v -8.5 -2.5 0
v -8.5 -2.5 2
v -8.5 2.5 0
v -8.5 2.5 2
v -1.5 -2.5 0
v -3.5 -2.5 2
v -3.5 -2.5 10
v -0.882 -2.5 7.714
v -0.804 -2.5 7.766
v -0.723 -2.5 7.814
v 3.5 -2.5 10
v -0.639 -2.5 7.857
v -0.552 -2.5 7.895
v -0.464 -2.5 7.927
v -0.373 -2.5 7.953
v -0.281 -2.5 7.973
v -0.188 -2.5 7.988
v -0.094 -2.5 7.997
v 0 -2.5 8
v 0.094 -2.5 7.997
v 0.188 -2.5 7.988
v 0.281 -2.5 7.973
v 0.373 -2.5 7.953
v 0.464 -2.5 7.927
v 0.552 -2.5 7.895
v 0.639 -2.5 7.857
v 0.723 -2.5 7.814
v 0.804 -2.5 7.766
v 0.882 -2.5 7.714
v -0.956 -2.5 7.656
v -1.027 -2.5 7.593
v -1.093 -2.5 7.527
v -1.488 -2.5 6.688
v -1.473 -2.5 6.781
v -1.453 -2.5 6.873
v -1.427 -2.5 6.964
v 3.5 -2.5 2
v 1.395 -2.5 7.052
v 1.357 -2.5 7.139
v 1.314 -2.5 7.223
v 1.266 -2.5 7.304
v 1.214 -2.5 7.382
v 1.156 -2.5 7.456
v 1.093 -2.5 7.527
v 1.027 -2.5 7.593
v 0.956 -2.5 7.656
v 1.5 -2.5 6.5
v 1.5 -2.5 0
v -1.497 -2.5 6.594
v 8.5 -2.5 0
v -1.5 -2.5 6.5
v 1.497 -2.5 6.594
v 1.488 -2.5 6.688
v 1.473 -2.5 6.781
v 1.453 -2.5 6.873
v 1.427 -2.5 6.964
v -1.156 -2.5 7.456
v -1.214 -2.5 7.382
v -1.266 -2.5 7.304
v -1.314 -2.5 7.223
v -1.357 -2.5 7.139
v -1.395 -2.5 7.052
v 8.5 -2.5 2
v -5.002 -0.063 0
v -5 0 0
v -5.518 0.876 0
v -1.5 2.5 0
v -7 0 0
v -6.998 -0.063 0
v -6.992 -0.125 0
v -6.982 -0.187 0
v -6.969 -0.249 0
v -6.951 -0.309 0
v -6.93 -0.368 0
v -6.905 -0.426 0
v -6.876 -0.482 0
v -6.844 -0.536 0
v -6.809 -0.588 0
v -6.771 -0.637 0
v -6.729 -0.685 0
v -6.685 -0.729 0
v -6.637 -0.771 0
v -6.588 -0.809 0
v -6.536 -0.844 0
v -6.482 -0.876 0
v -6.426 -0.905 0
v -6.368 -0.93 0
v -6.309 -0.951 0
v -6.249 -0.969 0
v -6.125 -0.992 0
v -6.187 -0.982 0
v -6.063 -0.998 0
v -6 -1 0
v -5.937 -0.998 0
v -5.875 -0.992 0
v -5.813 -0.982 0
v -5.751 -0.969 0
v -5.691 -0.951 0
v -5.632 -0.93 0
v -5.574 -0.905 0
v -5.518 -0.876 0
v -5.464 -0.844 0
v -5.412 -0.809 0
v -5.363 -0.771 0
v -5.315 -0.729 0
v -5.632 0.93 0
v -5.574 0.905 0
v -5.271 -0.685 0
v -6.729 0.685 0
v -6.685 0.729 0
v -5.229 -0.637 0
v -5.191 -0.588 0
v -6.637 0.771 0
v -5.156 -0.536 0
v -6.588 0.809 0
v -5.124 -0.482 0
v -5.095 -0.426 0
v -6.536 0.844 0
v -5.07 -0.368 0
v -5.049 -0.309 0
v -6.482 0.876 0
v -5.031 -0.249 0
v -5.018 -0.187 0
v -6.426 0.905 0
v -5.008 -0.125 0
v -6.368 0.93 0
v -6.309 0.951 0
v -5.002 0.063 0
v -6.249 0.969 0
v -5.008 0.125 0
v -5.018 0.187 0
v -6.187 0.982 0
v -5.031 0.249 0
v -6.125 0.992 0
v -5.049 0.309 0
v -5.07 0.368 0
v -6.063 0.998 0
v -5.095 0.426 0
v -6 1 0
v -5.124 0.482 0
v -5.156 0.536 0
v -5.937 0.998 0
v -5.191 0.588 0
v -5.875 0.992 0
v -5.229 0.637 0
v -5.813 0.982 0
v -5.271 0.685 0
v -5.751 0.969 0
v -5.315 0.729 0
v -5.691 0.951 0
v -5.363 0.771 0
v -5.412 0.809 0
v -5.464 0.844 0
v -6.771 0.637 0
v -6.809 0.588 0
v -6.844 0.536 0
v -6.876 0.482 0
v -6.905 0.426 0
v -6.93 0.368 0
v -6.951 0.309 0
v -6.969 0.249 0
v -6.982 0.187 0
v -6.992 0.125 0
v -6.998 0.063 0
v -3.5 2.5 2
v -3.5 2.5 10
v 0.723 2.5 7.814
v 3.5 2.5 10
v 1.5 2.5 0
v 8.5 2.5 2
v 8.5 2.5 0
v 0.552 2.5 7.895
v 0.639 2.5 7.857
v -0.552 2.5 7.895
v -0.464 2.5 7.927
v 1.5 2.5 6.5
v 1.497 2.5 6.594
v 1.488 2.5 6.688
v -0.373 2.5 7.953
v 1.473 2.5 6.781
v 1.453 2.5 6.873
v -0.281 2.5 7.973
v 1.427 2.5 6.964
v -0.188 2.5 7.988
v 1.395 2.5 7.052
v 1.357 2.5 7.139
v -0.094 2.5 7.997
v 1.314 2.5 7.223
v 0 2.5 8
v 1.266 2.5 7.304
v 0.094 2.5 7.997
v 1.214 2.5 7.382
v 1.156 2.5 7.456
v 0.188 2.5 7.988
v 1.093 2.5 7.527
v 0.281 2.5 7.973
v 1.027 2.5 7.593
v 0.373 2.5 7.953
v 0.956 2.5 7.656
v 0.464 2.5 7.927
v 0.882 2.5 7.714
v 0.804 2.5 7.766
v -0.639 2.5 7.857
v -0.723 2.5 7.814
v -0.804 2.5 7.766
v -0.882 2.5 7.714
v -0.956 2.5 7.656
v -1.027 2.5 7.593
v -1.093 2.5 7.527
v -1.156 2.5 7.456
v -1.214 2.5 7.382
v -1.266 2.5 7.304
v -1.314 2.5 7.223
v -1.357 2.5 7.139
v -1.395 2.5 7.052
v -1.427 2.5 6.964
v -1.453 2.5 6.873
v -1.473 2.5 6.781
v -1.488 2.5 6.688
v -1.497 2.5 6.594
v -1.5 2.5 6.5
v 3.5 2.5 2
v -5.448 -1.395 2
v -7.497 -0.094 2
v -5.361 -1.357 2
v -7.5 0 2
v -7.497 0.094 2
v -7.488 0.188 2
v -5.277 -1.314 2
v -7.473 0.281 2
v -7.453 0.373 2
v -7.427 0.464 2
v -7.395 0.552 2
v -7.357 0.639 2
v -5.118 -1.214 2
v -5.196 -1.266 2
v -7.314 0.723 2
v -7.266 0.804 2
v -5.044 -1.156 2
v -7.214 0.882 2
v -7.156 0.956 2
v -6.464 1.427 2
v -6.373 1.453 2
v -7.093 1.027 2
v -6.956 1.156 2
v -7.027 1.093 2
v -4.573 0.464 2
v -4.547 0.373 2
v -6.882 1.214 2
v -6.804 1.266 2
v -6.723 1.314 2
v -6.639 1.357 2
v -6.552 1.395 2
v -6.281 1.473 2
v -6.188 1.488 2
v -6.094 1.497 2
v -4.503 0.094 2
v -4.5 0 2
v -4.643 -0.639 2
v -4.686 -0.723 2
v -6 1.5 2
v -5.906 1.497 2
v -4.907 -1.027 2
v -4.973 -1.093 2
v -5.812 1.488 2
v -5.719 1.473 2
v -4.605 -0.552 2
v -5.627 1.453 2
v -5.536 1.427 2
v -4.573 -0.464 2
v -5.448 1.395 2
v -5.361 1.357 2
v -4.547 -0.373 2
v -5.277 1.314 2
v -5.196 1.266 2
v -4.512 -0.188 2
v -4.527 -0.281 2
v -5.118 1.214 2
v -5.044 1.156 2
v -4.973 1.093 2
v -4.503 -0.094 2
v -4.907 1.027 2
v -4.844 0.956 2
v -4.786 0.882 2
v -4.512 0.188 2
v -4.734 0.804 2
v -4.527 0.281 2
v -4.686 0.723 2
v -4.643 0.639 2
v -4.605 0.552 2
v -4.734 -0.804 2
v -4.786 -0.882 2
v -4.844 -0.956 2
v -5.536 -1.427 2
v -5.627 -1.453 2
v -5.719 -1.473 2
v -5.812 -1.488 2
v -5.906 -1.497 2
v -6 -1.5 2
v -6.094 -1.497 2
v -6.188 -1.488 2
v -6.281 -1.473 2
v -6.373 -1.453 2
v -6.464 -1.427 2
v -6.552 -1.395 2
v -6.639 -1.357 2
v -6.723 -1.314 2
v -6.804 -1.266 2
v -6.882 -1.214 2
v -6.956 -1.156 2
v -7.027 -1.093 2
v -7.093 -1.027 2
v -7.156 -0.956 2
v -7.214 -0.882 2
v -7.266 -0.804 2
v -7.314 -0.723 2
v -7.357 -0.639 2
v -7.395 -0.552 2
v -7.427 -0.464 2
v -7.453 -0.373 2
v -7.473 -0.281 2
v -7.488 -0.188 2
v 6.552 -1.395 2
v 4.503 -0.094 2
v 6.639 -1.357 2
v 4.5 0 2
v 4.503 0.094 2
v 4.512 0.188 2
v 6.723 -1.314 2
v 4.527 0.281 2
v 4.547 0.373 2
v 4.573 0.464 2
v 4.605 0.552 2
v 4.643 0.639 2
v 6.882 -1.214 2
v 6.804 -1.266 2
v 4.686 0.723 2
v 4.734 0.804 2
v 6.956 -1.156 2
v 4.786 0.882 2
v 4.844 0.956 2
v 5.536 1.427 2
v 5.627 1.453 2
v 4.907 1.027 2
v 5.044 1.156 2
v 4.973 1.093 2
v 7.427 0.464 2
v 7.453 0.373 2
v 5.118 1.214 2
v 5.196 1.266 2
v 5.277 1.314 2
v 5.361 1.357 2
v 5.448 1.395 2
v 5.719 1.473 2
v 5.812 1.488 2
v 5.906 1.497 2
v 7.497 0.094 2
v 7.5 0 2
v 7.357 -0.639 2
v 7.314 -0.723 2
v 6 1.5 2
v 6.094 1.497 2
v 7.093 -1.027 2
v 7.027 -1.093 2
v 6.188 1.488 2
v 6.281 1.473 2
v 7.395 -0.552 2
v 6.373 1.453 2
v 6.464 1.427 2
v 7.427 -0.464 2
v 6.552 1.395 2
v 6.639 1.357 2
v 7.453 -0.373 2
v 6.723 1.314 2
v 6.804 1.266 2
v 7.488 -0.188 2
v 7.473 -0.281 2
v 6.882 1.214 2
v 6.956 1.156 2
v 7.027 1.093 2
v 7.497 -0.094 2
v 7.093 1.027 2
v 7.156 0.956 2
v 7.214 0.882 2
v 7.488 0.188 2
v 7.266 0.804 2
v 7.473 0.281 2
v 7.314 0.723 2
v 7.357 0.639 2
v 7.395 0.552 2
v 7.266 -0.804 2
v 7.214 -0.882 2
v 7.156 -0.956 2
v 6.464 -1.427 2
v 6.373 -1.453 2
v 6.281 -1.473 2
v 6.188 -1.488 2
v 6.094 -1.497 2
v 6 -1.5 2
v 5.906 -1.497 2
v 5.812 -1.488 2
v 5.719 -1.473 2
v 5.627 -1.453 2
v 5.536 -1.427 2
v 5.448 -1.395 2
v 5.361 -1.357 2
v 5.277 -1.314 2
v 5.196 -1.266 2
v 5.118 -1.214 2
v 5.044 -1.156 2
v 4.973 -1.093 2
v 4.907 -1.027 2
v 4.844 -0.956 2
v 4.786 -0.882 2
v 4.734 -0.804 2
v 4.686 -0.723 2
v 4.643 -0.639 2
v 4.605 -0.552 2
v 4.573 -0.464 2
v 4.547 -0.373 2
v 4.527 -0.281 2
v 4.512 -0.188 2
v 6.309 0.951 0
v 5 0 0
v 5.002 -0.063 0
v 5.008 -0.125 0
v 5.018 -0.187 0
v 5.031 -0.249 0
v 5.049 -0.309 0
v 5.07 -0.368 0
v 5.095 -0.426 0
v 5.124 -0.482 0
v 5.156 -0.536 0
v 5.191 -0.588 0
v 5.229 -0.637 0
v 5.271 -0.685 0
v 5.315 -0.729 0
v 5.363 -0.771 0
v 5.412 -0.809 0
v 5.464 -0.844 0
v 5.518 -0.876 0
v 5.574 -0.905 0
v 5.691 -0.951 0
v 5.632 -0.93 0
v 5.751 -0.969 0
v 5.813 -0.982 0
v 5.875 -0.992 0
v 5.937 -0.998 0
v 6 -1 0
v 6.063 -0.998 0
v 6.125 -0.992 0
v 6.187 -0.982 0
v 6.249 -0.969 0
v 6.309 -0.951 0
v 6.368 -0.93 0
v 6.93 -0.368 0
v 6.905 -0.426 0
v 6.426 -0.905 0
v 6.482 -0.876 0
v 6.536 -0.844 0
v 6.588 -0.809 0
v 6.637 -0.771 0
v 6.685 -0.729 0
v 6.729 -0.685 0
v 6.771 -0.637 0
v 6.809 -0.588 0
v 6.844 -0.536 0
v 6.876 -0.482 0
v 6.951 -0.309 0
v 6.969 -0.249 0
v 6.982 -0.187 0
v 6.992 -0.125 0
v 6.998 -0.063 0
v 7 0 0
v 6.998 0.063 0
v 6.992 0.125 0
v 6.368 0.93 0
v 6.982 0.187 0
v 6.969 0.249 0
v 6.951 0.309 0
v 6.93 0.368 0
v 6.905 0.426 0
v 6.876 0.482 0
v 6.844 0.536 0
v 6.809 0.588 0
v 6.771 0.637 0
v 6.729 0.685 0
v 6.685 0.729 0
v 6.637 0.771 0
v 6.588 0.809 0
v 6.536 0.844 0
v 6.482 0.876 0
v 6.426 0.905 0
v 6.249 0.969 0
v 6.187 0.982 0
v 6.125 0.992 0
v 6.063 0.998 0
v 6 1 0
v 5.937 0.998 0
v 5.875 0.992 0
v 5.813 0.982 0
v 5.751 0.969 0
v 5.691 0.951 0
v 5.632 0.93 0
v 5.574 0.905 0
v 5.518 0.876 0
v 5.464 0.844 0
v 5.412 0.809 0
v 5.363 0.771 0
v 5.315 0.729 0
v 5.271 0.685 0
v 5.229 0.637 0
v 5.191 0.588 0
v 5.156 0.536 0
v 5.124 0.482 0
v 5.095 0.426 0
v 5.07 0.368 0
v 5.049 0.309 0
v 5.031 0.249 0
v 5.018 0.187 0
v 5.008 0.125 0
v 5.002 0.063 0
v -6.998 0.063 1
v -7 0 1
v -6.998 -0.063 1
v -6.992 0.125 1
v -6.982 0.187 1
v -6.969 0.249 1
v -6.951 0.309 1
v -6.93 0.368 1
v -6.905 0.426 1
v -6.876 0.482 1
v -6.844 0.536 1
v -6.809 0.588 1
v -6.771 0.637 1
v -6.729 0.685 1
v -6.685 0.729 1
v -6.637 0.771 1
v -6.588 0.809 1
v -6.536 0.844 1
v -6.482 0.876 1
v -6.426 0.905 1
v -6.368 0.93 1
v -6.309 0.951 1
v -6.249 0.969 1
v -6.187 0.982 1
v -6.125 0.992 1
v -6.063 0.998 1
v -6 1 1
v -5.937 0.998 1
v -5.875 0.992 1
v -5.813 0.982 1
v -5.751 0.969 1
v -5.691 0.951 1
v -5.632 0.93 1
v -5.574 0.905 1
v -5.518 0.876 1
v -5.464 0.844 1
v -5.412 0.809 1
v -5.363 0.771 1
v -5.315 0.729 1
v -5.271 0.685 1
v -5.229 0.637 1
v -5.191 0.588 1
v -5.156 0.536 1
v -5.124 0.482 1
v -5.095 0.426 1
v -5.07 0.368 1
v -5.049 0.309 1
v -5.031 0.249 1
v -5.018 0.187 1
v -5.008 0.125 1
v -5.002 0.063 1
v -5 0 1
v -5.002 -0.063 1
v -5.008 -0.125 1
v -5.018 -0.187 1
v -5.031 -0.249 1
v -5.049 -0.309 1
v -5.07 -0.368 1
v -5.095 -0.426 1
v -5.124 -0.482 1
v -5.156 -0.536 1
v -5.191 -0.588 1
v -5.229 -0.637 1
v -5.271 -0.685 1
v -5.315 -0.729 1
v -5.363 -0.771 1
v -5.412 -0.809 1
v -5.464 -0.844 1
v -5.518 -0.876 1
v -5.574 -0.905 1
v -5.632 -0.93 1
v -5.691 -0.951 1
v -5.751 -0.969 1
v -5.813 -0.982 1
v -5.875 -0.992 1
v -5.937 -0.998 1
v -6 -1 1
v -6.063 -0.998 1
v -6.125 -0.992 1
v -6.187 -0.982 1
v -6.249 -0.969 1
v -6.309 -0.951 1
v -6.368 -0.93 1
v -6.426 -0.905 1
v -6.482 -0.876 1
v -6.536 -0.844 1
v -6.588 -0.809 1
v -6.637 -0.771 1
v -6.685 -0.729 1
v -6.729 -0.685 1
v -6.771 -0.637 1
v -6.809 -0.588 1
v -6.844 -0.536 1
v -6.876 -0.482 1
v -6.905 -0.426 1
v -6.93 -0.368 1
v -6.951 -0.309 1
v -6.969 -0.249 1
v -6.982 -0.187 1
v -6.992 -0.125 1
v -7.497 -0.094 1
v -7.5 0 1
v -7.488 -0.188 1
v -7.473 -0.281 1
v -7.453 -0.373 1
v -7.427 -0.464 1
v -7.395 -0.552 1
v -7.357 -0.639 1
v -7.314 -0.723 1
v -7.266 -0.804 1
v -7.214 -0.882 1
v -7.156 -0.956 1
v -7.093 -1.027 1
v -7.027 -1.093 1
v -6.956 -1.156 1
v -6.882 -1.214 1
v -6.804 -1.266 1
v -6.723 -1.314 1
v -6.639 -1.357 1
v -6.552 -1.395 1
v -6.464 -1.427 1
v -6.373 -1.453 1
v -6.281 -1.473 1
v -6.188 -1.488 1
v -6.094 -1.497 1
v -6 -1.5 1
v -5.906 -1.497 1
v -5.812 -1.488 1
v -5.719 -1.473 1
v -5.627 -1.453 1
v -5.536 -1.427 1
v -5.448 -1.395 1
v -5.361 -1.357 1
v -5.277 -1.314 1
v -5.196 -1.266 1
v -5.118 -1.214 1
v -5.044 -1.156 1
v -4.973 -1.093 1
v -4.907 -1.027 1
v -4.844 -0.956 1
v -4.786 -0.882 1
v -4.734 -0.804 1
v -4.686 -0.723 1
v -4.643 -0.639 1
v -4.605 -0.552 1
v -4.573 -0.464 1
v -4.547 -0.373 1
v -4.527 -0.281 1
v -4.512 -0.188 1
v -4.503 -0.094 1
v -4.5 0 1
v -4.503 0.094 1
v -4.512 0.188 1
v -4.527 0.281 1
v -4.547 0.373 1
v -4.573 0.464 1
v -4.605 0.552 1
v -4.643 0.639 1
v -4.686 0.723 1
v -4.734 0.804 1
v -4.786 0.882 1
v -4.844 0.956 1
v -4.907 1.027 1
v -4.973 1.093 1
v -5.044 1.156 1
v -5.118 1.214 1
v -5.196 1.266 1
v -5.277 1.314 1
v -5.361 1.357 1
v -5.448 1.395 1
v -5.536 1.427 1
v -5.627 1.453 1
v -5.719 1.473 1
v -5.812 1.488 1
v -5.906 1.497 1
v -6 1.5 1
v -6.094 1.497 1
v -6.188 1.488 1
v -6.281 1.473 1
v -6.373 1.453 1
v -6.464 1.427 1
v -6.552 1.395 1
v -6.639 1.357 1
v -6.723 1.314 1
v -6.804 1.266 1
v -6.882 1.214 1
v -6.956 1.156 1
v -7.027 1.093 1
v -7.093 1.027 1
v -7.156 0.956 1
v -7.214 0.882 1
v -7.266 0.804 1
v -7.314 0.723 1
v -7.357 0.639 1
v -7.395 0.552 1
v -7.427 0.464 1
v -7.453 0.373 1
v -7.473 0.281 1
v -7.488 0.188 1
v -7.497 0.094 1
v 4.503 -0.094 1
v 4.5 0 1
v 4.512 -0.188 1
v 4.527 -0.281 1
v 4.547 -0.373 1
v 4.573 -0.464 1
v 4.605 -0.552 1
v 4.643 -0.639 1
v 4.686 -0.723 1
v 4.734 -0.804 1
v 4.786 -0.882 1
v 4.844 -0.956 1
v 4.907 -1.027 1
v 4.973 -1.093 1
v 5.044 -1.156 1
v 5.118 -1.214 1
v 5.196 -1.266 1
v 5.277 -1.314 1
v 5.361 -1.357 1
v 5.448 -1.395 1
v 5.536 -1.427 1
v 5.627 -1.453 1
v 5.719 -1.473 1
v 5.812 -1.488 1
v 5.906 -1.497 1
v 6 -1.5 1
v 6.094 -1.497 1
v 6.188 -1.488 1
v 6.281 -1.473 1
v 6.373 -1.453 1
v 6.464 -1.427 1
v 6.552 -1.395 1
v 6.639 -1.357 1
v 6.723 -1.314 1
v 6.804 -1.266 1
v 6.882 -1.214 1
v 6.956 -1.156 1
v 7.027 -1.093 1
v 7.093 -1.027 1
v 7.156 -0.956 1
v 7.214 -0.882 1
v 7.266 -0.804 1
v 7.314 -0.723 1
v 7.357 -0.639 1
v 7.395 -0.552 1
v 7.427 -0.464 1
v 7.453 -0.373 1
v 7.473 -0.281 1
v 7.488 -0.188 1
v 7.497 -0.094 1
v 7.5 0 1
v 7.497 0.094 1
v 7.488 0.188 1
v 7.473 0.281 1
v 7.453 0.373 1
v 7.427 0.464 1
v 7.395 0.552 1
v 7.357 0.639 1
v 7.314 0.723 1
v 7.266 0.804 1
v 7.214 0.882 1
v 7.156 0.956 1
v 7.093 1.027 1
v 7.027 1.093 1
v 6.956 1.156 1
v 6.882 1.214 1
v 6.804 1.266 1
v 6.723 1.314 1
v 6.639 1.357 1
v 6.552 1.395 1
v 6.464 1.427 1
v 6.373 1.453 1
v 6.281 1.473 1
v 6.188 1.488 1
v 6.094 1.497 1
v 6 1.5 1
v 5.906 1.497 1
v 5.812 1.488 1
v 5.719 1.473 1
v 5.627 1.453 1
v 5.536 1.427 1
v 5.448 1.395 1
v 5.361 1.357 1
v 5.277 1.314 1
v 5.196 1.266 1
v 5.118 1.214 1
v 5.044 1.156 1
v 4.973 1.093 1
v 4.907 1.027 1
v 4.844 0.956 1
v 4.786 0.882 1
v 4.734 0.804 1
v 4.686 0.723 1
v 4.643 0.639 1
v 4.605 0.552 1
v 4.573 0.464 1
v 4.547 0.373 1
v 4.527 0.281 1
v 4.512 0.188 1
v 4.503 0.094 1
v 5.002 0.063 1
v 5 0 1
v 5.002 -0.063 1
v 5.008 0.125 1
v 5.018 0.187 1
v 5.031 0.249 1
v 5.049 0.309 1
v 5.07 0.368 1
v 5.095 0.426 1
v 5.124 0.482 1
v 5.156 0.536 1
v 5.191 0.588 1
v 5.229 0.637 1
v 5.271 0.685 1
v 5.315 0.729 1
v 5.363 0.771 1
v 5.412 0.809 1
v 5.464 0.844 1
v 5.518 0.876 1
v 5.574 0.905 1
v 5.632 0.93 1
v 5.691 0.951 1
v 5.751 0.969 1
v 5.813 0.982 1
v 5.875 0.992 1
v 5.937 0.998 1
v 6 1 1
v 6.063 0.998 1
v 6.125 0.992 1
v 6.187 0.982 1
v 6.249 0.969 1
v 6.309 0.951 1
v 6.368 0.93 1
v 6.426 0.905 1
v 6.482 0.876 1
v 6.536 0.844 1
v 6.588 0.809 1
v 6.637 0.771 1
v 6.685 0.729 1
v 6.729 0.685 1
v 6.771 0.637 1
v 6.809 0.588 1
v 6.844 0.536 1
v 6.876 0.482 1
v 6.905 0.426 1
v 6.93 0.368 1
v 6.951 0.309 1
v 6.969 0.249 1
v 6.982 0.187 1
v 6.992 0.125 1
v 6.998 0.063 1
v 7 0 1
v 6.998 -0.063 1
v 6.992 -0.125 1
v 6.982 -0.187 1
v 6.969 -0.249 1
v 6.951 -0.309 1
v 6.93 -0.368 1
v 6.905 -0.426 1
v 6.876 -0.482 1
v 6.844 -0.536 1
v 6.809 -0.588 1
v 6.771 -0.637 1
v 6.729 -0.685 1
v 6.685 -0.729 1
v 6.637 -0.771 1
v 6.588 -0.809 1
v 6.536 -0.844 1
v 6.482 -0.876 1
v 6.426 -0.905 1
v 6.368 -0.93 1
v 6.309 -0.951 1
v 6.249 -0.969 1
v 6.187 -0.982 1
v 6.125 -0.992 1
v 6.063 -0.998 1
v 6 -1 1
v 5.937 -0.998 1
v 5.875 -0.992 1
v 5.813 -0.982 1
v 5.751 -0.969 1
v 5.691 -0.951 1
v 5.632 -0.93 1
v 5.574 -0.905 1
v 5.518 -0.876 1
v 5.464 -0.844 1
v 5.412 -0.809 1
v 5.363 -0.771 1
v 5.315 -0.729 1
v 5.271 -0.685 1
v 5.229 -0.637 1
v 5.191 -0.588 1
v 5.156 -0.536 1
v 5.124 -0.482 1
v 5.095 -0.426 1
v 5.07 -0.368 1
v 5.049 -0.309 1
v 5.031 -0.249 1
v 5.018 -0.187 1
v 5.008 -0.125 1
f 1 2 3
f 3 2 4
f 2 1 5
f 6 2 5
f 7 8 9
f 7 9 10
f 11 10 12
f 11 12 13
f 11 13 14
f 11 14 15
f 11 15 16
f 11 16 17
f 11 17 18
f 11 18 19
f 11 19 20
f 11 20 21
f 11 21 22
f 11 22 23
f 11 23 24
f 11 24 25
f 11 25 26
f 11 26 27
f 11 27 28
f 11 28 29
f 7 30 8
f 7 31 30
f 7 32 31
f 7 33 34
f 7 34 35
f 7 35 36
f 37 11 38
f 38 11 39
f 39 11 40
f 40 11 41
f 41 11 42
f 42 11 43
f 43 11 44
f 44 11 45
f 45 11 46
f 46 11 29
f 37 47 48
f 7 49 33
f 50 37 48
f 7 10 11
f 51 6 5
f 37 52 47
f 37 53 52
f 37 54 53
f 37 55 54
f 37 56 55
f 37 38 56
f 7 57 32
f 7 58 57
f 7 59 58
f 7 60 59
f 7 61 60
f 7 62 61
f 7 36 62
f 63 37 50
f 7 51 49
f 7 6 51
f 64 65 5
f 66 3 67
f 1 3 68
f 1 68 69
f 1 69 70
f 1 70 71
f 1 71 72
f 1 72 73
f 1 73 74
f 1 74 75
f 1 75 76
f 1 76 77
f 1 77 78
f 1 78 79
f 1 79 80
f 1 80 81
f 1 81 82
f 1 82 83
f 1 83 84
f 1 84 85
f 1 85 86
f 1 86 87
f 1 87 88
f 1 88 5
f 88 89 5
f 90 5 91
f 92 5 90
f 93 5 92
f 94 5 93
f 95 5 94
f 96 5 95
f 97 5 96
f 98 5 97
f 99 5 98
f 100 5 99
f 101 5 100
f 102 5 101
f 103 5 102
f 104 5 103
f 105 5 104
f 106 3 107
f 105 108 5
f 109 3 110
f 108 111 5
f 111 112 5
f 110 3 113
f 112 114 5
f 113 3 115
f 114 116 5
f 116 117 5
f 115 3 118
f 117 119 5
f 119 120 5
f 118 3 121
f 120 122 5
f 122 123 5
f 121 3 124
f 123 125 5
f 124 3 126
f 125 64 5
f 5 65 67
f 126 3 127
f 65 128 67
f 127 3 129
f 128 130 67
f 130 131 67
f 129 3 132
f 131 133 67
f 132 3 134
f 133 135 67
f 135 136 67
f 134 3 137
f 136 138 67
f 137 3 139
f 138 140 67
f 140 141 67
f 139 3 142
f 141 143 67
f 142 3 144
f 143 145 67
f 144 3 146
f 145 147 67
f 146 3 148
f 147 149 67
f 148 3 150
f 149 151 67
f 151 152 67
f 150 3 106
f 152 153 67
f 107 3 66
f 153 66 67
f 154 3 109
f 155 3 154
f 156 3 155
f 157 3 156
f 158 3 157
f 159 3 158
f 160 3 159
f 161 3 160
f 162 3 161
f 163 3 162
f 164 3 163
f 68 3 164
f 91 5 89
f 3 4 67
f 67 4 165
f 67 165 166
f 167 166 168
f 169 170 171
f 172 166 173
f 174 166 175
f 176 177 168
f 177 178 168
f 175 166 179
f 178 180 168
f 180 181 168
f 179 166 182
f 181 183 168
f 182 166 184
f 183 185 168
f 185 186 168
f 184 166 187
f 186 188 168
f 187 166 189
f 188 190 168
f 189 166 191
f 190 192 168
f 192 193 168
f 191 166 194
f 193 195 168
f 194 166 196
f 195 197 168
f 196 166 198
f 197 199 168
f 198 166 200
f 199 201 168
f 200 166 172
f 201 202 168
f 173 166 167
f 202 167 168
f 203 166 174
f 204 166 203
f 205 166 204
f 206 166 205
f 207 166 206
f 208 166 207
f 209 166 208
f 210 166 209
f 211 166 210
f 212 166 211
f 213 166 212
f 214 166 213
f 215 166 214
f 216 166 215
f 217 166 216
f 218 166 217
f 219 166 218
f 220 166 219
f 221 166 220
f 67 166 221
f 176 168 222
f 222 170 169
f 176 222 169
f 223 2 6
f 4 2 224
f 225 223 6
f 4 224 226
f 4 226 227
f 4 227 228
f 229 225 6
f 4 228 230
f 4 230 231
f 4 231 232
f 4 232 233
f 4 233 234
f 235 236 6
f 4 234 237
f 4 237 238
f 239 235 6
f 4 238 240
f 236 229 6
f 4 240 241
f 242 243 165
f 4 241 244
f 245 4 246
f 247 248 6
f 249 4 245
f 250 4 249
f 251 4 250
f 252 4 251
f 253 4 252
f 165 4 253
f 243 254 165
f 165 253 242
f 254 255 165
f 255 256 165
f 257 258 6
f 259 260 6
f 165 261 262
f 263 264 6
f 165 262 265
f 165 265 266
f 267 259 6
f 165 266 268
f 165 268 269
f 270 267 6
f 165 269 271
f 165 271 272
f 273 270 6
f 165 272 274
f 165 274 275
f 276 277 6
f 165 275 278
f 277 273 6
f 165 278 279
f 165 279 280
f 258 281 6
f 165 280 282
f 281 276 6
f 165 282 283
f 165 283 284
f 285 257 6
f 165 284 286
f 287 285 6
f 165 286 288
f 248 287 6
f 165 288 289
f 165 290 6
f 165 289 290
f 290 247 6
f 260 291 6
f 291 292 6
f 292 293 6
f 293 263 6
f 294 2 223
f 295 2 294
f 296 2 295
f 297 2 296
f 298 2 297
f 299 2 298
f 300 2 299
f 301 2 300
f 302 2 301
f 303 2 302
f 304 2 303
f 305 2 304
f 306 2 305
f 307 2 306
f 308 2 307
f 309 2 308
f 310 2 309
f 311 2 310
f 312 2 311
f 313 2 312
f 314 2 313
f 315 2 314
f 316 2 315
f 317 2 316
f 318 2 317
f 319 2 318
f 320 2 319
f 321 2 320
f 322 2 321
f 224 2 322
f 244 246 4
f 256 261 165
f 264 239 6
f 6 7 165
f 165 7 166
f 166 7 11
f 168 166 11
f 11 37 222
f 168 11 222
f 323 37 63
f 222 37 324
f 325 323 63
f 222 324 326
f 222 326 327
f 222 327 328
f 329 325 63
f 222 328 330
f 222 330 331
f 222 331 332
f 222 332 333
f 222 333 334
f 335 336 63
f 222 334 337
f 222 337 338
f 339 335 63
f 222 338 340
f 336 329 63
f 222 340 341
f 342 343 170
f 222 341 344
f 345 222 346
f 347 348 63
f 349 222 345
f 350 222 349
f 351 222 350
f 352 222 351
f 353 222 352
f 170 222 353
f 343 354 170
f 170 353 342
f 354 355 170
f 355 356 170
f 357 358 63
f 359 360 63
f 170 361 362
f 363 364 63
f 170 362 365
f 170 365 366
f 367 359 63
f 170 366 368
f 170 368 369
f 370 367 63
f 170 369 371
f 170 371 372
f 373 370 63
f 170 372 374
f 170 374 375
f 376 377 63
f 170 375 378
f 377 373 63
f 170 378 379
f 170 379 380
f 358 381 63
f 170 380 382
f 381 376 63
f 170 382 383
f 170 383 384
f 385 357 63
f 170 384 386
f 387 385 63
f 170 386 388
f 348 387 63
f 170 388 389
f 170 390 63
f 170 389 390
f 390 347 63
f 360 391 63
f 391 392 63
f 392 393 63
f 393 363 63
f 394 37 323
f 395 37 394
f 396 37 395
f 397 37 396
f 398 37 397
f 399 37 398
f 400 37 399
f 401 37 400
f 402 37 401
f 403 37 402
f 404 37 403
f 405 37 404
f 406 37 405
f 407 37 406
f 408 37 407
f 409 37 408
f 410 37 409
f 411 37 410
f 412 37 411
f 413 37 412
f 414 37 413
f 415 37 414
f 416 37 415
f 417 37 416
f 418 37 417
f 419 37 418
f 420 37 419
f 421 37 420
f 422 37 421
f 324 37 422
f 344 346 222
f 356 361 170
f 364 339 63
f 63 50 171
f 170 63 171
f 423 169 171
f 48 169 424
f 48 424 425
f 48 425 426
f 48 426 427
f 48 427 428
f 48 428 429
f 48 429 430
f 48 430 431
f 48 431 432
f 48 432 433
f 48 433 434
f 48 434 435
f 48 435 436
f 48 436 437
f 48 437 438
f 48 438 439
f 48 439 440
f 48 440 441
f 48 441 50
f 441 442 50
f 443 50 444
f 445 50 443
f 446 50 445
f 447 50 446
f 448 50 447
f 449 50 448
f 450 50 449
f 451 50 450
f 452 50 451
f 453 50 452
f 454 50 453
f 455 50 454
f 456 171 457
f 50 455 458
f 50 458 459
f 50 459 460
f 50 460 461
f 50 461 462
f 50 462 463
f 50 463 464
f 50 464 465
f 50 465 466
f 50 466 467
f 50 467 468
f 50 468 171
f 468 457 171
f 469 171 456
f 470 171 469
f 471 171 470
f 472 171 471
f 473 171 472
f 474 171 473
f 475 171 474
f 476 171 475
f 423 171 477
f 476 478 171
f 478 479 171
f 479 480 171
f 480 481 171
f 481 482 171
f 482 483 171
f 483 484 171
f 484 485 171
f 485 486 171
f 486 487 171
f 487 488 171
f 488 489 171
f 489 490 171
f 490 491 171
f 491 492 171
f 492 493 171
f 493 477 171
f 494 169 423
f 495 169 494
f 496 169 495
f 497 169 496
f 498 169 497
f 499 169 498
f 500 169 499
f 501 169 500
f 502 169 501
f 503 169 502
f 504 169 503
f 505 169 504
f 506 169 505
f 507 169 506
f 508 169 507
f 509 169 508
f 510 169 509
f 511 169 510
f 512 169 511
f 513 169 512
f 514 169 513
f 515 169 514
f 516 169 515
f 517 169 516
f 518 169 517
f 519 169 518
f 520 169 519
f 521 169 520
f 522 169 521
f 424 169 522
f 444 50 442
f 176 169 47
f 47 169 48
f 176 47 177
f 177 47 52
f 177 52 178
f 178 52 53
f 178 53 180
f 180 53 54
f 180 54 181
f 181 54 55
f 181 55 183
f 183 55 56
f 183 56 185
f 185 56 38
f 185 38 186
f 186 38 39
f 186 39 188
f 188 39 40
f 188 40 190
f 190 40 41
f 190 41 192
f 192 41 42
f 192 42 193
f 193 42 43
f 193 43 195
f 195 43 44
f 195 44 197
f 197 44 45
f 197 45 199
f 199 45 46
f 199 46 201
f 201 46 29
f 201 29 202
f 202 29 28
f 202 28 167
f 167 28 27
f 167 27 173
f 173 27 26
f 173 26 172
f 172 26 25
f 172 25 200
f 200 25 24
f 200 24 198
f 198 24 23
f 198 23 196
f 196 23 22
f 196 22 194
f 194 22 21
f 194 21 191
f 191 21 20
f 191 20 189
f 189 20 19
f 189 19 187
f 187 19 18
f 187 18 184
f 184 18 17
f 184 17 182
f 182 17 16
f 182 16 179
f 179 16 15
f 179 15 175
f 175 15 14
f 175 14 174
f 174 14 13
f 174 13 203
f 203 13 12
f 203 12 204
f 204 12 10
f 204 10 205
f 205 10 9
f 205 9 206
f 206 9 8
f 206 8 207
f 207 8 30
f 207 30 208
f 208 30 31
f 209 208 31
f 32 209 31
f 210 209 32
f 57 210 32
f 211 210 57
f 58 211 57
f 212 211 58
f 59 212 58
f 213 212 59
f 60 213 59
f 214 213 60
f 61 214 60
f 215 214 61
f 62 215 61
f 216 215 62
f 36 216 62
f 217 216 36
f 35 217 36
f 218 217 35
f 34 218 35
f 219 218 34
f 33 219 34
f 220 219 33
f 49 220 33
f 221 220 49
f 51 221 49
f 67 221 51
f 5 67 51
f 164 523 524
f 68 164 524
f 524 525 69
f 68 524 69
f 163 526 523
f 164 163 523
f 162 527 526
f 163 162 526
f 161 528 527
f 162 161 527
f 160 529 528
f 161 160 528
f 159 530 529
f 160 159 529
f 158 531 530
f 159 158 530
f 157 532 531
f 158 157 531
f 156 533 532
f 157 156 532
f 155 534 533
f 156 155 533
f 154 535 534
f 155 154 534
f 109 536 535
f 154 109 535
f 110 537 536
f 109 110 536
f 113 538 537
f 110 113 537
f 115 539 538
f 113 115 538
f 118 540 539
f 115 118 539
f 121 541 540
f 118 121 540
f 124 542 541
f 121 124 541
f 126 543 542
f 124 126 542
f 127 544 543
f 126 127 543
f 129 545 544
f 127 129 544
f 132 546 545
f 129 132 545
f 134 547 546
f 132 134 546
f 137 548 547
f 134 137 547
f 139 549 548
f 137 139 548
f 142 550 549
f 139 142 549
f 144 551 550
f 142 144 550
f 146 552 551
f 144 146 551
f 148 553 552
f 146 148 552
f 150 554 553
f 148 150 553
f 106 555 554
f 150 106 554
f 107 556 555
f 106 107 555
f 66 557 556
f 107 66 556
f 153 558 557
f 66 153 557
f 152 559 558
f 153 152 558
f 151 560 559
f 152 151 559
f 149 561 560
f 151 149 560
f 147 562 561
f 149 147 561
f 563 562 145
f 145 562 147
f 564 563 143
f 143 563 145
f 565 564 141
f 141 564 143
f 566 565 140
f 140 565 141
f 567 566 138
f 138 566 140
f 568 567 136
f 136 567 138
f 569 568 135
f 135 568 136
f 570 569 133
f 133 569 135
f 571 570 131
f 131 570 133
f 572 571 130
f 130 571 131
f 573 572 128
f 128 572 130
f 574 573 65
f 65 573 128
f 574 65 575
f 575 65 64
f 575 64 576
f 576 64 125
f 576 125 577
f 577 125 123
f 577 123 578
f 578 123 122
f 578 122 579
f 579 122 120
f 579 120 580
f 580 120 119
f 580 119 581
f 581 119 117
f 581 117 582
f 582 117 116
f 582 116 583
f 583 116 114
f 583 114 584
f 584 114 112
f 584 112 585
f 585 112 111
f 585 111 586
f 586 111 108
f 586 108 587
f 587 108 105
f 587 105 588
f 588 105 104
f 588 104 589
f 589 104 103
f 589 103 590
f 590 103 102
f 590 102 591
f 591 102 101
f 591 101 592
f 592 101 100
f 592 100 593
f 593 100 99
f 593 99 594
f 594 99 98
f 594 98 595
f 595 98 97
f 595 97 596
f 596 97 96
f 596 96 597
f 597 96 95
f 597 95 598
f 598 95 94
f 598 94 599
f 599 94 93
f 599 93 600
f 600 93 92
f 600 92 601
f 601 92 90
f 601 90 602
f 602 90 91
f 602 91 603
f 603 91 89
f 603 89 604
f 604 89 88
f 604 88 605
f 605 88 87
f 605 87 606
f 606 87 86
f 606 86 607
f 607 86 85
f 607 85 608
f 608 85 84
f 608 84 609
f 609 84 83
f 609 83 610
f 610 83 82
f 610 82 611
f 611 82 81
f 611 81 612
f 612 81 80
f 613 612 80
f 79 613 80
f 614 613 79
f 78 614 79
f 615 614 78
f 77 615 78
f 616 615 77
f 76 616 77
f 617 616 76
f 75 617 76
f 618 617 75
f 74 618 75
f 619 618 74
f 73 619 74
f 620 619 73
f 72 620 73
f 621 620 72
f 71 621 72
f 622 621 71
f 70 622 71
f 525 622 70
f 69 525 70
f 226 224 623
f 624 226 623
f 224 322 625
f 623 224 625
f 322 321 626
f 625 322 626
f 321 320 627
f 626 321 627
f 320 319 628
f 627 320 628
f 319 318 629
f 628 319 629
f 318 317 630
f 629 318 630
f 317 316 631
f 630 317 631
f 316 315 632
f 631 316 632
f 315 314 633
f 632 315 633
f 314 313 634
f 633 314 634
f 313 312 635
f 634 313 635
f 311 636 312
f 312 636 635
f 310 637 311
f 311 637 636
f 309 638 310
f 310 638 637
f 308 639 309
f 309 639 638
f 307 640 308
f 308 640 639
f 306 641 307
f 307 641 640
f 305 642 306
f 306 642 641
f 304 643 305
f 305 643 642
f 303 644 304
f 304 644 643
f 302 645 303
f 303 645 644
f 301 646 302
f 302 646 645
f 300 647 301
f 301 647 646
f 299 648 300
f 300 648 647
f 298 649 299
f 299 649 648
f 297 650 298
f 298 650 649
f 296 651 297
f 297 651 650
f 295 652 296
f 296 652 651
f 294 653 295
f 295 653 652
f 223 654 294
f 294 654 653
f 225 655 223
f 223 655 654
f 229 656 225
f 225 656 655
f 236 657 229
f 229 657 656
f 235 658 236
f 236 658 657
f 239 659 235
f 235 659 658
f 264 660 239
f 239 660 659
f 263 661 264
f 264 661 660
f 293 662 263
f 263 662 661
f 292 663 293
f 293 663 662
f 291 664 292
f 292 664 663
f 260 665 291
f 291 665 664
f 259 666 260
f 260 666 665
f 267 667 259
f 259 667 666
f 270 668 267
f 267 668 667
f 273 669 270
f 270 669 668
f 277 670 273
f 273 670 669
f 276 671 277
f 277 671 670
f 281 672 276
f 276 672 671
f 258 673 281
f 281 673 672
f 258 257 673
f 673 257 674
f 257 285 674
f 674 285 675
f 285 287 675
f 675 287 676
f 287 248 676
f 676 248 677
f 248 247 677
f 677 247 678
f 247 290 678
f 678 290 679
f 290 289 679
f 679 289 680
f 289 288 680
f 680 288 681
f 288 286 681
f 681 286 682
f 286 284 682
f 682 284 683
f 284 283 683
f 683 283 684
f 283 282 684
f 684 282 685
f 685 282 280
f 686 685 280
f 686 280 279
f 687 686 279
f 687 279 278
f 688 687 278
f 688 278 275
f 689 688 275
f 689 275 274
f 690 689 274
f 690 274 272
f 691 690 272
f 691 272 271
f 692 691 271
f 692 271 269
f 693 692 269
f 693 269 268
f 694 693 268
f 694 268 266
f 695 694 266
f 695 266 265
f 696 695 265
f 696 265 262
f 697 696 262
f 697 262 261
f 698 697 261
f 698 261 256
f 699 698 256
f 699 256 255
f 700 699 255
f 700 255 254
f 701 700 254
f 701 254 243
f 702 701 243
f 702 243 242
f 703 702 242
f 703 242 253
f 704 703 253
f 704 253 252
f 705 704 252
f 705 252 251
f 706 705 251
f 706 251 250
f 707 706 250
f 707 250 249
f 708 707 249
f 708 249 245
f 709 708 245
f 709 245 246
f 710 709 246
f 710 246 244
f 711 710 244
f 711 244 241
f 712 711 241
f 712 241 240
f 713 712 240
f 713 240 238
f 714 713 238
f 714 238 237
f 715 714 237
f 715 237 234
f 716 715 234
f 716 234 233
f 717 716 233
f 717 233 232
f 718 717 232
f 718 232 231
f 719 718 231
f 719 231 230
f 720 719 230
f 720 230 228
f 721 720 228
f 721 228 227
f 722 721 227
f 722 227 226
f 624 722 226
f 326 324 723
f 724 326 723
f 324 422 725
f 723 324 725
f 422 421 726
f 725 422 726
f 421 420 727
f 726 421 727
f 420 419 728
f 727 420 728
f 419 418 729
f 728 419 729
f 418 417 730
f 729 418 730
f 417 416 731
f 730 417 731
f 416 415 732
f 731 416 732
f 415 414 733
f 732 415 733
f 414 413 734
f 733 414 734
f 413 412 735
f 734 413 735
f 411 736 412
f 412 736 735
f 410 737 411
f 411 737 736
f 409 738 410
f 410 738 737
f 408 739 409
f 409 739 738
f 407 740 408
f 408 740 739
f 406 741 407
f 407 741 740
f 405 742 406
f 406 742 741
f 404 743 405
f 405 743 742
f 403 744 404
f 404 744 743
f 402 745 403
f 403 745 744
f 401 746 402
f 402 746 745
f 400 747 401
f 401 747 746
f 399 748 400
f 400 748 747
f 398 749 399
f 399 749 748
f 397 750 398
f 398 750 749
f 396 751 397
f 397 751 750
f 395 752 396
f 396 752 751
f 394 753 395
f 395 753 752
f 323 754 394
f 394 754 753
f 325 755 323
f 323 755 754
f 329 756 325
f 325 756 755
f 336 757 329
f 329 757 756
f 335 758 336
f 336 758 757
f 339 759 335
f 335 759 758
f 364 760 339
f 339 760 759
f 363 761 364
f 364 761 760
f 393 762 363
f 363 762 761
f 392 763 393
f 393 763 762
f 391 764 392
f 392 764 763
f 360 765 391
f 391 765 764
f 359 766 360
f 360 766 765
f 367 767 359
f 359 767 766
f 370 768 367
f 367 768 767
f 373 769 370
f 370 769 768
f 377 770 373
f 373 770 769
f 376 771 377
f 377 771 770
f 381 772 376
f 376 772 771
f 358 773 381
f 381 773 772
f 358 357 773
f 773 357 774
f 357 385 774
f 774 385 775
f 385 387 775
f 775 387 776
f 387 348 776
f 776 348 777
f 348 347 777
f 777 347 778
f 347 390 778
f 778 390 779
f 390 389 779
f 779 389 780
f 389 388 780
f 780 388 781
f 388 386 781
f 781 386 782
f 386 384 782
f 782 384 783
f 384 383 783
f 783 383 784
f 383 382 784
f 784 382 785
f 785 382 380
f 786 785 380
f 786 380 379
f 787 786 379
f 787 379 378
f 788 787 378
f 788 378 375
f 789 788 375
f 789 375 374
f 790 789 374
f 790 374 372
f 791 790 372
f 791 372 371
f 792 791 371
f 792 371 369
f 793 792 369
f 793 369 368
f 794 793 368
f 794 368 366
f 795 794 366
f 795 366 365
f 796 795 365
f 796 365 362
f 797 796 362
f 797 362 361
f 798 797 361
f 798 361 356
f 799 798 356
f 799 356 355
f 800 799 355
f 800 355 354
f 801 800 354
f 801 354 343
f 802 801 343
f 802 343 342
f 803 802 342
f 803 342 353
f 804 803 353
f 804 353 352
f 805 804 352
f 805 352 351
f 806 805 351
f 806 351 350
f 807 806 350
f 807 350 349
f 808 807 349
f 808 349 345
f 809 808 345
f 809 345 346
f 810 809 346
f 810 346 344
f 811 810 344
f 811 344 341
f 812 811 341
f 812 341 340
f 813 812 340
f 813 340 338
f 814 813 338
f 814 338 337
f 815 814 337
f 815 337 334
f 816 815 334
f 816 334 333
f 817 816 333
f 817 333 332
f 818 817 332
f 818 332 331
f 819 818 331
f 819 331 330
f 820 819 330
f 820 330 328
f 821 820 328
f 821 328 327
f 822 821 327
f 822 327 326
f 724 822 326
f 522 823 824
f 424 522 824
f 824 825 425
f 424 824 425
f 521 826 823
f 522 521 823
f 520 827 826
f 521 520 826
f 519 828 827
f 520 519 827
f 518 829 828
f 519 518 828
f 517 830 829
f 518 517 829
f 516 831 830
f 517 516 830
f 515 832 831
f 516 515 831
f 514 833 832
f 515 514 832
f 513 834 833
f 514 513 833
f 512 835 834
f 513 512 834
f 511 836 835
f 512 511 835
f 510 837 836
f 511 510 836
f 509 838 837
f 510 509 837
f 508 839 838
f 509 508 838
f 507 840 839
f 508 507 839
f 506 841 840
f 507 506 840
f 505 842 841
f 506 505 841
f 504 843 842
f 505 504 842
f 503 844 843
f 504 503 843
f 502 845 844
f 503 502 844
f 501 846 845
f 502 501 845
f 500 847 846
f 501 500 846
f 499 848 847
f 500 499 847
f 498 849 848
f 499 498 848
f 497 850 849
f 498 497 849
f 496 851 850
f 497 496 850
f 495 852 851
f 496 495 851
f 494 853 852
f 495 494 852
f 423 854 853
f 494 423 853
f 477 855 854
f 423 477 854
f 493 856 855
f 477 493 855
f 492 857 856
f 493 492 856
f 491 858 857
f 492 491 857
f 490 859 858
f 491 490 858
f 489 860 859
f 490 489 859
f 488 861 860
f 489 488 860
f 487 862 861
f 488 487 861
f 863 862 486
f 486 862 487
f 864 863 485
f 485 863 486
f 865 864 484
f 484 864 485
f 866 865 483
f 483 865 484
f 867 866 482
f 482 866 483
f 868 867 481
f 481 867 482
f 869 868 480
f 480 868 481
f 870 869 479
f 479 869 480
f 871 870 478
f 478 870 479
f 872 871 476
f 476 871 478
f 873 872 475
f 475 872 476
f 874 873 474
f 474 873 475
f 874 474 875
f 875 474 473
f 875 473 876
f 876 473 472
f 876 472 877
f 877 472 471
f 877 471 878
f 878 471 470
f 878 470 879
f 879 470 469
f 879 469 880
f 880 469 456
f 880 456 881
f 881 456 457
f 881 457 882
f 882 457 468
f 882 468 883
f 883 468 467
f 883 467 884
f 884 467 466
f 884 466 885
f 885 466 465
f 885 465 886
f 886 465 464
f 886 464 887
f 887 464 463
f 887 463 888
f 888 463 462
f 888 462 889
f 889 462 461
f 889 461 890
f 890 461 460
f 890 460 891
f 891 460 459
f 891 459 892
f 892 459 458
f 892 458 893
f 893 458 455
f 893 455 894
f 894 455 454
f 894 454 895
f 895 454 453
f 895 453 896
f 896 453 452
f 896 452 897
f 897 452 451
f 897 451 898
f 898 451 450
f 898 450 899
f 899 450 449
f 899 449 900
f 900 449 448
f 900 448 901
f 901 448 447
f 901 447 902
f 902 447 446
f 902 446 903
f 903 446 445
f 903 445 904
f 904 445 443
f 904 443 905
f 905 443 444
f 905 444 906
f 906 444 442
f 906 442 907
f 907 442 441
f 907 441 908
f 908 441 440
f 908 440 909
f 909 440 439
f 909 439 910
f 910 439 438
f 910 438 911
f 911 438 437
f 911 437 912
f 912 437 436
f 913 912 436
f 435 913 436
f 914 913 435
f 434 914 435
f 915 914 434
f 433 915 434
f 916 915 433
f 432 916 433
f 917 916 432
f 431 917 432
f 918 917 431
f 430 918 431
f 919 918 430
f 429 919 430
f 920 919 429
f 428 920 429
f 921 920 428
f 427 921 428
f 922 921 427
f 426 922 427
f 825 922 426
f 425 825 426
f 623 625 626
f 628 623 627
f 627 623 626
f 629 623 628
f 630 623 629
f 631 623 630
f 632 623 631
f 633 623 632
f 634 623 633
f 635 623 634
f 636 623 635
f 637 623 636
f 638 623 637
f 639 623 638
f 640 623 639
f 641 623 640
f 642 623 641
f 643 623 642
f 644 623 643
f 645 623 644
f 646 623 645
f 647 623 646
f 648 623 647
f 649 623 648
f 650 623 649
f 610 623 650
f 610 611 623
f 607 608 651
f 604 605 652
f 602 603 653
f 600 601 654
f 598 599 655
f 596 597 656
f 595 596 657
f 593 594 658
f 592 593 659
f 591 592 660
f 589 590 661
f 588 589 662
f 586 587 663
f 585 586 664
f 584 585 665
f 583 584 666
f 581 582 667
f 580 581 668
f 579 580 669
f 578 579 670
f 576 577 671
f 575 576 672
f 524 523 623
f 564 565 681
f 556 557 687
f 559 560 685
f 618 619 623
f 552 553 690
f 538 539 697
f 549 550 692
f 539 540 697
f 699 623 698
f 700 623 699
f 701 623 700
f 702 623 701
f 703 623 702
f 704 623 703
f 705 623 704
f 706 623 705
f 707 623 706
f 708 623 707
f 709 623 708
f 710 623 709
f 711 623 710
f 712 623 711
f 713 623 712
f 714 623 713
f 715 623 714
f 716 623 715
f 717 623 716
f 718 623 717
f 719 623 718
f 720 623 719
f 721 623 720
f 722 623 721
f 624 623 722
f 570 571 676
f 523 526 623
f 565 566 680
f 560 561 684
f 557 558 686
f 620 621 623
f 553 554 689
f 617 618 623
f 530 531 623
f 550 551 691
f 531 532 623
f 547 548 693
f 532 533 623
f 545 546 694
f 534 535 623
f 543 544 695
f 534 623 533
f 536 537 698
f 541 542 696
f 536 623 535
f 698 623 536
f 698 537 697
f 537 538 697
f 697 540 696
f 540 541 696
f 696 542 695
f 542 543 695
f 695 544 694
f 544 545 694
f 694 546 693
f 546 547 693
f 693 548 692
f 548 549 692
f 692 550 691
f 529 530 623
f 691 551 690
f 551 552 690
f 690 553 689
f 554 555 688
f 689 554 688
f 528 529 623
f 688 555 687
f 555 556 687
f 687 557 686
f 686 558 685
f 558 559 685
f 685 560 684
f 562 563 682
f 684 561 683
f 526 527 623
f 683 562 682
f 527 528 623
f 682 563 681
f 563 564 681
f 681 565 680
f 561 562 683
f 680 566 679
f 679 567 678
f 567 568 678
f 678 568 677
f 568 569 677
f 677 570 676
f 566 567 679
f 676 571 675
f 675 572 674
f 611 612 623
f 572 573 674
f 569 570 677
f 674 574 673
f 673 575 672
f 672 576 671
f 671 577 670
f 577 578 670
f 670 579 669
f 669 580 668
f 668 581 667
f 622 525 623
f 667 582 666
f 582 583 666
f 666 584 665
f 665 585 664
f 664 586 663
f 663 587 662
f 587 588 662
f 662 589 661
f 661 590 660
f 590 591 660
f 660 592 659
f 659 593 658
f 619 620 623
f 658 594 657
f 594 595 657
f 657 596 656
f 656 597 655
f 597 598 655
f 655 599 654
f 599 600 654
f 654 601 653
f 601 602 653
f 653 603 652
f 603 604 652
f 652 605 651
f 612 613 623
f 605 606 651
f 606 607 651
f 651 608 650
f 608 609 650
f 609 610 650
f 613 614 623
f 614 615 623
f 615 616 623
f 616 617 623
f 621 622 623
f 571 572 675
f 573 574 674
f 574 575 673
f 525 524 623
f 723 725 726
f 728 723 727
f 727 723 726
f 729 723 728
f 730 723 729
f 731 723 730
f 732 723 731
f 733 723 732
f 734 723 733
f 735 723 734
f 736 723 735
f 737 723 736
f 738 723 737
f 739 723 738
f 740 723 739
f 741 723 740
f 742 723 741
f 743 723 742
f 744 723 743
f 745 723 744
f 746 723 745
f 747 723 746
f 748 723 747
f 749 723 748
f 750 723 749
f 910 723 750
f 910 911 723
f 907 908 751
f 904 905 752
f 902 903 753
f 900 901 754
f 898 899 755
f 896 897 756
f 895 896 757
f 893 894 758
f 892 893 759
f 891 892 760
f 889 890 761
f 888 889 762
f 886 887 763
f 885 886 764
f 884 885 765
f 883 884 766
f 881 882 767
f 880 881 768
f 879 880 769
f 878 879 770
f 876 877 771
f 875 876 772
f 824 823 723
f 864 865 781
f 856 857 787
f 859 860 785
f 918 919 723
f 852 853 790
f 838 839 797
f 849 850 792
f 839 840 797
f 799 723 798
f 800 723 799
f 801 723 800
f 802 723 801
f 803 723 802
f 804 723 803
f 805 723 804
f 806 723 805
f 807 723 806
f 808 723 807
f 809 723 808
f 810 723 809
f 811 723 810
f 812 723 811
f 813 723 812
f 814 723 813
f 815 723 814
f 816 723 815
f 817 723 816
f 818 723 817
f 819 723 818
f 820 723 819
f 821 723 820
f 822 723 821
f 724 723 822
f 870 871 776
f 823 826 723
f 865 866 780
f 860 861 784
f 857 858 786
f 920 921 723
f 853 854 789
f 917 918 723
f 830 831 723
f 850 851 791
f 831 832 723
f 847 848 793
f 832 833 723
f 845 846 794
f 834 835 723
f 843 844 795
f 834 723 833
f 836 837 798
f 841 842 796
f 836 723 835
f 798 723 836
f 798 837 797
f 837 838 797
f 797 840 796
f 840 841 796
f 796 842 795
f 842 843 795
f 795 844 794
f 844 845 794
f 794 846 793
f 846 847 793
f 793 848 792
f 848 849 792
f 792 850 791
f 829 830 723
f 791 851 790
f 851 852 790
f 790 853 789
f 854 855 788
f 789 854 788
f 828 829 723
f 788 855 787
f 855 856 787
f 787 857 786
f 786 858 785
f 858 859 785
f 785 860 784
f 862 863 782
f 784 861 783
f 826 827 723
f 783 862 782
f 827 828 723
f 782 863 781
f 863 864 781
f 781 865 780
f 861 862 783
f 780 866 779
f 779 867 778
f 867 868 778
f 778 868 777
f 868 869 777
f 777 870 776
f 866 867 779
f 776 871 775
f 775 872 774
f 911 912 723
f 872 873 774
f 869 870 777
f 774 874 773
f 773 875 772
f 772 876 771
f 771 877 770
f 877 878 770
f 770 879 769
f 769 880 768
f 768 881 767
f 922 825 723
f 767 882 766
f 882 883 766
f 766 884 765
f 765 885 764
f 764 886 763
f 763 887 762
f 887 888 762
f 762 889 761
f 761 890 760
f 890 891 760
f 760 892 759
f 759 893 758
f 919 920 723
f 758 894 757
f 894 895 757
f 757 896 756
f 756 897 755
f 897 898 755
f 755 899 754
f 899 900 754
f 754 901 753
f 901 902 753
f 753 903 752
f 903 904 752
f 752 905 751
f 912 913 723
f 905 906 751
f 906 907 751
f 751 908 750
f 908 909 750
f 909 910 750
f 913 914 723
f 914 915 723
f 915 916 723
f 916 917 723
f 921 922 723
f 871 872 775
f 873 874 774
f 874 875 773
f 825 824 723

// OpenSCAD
$fn=100;

stearingClip();


module stearingClip(){
	
  width = 3;
  depth = 5;
  height = 8;
  
  buffer = 2;
  
  r = width/2;
  
  translate([-(width+2*buffer)/2,-(depth)/2,0]){
    
    difference(){
      cube([width+2*buffer, depth, height+buffer]);
      
      translate([buffer,0,0]){    
      
        union(){
          cube([width, depth, height-r]);
          
          translate([r,depth,height-r]){    
          
            rotate([90,0,00]){
              cylinder(h=depth*1.1, r=r);
            }
          }
        }
      }
    }
    
    
    translate([-5,0,0]){
    
      difference(){
         
      cube([5,5,2]);
      
      translate([2.5,2.5,1]){
          cylinder(h=1, r=1.5);
        }
        
        translate([2.5,2.5,0]){
           cylinder(h=2, r=1);
        }
      }  
    }
    
    translate([5+buffer,0,0]){
    
      difference(){
         
      cube([5,5,2]);
      
      translate([2.5,2.5,1]){
          cylinder(h=1, r=1.5);
        }
        
        translate([2.5,2.5,0]){
           cylinder(h=2, r=1);
        }
      }  
    }  
  
  }
  
}
